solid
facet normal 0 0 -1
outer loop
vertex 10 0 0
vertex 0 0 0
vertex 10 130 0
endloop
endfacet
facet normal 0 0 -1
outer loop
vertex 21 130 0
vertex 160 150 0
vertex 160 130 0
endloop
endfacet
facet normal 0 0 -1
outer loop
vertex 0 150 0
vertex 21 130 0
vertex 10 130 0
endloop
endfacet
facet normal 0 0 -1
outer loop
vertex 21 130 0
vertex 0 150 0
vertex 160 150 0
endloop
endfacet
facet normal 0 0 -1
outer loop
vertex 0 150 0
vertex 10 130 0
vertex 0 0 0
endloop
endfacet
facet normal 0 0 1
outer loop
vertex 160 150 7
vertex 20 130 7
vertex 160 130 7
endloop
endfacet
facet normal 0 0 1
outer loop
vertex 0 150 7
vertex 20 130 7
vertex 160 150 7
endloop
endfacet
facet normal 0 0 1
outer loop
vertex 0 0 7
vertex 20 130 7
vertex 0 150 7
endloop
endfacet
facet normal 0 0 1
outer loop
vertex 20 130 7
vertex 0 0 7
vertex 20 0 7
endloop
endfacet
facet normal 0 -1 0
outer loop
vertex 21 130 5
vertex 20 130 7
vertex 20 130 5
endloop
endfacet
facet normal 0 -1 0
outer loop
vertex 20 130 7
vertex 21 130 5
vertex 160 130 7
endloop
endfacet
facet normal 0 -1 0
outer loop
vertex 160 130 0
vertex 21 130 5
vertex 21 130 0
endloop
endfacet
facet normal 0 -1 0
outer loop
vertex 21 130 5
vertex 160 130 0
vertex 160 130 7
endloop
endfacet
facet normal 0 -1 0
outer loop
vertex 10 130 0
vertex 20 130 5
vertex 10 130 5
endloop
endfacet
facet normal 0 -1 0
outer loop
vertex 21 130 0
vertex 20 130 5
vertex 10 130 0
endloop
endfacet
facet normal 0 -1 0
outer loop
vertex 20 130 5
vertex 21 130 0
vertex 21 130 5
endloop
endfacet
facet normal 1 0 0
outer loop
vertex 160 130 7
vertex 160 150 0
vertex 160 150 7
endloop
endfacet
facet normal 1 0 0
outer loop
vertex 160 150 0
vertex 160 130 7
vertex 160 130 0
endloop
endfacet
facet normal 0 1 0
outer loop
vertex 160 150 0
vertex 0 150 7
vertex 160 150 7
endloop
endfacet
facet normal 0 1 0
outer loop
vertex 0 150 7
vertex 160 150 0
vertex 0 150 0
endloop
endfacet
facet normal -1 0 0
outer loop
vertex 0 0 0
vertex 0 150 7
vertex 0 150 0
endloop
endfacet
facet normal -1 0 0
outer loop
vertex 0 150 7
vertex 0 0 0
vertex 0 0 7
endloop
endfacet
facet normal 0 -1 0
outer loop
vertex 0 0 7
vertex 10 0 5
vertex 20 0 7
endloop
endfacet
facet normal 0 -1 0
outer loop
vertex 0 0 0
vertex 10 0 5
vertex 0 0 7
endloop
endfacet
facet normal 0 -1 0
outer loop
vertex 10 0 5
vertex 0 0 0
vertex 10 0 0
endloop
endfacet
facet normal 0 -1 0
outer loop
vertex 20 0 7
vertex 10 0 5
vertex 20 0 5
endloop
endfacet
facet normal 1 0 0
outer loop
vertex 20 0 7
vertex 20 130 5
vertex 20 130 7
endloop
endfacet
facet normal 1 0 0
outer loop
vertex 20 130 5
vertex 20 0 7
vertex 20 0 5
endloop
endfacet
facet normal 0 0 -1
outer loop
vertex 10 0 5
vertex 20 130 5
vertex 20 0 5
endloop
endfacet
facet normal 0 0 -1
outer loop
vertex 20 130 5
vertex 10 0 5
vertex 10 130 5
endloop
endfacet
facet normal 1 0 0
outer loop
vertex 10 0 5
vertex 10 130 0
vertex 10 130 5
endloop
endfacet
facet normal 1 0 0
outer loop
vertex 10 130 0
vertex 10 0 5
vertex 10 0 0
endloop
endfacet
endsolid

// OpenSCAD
difference() {

linear_extrude( height=7) polygon(points = [
[0,0],
[0,150],
[160,150],
[160,130],
[20,130],
[20,0],
[0,0]
]);

color("blue") 
translate([10,0-1,0-1]){cube([10+1,130+1,5+1], center=false);}
}
